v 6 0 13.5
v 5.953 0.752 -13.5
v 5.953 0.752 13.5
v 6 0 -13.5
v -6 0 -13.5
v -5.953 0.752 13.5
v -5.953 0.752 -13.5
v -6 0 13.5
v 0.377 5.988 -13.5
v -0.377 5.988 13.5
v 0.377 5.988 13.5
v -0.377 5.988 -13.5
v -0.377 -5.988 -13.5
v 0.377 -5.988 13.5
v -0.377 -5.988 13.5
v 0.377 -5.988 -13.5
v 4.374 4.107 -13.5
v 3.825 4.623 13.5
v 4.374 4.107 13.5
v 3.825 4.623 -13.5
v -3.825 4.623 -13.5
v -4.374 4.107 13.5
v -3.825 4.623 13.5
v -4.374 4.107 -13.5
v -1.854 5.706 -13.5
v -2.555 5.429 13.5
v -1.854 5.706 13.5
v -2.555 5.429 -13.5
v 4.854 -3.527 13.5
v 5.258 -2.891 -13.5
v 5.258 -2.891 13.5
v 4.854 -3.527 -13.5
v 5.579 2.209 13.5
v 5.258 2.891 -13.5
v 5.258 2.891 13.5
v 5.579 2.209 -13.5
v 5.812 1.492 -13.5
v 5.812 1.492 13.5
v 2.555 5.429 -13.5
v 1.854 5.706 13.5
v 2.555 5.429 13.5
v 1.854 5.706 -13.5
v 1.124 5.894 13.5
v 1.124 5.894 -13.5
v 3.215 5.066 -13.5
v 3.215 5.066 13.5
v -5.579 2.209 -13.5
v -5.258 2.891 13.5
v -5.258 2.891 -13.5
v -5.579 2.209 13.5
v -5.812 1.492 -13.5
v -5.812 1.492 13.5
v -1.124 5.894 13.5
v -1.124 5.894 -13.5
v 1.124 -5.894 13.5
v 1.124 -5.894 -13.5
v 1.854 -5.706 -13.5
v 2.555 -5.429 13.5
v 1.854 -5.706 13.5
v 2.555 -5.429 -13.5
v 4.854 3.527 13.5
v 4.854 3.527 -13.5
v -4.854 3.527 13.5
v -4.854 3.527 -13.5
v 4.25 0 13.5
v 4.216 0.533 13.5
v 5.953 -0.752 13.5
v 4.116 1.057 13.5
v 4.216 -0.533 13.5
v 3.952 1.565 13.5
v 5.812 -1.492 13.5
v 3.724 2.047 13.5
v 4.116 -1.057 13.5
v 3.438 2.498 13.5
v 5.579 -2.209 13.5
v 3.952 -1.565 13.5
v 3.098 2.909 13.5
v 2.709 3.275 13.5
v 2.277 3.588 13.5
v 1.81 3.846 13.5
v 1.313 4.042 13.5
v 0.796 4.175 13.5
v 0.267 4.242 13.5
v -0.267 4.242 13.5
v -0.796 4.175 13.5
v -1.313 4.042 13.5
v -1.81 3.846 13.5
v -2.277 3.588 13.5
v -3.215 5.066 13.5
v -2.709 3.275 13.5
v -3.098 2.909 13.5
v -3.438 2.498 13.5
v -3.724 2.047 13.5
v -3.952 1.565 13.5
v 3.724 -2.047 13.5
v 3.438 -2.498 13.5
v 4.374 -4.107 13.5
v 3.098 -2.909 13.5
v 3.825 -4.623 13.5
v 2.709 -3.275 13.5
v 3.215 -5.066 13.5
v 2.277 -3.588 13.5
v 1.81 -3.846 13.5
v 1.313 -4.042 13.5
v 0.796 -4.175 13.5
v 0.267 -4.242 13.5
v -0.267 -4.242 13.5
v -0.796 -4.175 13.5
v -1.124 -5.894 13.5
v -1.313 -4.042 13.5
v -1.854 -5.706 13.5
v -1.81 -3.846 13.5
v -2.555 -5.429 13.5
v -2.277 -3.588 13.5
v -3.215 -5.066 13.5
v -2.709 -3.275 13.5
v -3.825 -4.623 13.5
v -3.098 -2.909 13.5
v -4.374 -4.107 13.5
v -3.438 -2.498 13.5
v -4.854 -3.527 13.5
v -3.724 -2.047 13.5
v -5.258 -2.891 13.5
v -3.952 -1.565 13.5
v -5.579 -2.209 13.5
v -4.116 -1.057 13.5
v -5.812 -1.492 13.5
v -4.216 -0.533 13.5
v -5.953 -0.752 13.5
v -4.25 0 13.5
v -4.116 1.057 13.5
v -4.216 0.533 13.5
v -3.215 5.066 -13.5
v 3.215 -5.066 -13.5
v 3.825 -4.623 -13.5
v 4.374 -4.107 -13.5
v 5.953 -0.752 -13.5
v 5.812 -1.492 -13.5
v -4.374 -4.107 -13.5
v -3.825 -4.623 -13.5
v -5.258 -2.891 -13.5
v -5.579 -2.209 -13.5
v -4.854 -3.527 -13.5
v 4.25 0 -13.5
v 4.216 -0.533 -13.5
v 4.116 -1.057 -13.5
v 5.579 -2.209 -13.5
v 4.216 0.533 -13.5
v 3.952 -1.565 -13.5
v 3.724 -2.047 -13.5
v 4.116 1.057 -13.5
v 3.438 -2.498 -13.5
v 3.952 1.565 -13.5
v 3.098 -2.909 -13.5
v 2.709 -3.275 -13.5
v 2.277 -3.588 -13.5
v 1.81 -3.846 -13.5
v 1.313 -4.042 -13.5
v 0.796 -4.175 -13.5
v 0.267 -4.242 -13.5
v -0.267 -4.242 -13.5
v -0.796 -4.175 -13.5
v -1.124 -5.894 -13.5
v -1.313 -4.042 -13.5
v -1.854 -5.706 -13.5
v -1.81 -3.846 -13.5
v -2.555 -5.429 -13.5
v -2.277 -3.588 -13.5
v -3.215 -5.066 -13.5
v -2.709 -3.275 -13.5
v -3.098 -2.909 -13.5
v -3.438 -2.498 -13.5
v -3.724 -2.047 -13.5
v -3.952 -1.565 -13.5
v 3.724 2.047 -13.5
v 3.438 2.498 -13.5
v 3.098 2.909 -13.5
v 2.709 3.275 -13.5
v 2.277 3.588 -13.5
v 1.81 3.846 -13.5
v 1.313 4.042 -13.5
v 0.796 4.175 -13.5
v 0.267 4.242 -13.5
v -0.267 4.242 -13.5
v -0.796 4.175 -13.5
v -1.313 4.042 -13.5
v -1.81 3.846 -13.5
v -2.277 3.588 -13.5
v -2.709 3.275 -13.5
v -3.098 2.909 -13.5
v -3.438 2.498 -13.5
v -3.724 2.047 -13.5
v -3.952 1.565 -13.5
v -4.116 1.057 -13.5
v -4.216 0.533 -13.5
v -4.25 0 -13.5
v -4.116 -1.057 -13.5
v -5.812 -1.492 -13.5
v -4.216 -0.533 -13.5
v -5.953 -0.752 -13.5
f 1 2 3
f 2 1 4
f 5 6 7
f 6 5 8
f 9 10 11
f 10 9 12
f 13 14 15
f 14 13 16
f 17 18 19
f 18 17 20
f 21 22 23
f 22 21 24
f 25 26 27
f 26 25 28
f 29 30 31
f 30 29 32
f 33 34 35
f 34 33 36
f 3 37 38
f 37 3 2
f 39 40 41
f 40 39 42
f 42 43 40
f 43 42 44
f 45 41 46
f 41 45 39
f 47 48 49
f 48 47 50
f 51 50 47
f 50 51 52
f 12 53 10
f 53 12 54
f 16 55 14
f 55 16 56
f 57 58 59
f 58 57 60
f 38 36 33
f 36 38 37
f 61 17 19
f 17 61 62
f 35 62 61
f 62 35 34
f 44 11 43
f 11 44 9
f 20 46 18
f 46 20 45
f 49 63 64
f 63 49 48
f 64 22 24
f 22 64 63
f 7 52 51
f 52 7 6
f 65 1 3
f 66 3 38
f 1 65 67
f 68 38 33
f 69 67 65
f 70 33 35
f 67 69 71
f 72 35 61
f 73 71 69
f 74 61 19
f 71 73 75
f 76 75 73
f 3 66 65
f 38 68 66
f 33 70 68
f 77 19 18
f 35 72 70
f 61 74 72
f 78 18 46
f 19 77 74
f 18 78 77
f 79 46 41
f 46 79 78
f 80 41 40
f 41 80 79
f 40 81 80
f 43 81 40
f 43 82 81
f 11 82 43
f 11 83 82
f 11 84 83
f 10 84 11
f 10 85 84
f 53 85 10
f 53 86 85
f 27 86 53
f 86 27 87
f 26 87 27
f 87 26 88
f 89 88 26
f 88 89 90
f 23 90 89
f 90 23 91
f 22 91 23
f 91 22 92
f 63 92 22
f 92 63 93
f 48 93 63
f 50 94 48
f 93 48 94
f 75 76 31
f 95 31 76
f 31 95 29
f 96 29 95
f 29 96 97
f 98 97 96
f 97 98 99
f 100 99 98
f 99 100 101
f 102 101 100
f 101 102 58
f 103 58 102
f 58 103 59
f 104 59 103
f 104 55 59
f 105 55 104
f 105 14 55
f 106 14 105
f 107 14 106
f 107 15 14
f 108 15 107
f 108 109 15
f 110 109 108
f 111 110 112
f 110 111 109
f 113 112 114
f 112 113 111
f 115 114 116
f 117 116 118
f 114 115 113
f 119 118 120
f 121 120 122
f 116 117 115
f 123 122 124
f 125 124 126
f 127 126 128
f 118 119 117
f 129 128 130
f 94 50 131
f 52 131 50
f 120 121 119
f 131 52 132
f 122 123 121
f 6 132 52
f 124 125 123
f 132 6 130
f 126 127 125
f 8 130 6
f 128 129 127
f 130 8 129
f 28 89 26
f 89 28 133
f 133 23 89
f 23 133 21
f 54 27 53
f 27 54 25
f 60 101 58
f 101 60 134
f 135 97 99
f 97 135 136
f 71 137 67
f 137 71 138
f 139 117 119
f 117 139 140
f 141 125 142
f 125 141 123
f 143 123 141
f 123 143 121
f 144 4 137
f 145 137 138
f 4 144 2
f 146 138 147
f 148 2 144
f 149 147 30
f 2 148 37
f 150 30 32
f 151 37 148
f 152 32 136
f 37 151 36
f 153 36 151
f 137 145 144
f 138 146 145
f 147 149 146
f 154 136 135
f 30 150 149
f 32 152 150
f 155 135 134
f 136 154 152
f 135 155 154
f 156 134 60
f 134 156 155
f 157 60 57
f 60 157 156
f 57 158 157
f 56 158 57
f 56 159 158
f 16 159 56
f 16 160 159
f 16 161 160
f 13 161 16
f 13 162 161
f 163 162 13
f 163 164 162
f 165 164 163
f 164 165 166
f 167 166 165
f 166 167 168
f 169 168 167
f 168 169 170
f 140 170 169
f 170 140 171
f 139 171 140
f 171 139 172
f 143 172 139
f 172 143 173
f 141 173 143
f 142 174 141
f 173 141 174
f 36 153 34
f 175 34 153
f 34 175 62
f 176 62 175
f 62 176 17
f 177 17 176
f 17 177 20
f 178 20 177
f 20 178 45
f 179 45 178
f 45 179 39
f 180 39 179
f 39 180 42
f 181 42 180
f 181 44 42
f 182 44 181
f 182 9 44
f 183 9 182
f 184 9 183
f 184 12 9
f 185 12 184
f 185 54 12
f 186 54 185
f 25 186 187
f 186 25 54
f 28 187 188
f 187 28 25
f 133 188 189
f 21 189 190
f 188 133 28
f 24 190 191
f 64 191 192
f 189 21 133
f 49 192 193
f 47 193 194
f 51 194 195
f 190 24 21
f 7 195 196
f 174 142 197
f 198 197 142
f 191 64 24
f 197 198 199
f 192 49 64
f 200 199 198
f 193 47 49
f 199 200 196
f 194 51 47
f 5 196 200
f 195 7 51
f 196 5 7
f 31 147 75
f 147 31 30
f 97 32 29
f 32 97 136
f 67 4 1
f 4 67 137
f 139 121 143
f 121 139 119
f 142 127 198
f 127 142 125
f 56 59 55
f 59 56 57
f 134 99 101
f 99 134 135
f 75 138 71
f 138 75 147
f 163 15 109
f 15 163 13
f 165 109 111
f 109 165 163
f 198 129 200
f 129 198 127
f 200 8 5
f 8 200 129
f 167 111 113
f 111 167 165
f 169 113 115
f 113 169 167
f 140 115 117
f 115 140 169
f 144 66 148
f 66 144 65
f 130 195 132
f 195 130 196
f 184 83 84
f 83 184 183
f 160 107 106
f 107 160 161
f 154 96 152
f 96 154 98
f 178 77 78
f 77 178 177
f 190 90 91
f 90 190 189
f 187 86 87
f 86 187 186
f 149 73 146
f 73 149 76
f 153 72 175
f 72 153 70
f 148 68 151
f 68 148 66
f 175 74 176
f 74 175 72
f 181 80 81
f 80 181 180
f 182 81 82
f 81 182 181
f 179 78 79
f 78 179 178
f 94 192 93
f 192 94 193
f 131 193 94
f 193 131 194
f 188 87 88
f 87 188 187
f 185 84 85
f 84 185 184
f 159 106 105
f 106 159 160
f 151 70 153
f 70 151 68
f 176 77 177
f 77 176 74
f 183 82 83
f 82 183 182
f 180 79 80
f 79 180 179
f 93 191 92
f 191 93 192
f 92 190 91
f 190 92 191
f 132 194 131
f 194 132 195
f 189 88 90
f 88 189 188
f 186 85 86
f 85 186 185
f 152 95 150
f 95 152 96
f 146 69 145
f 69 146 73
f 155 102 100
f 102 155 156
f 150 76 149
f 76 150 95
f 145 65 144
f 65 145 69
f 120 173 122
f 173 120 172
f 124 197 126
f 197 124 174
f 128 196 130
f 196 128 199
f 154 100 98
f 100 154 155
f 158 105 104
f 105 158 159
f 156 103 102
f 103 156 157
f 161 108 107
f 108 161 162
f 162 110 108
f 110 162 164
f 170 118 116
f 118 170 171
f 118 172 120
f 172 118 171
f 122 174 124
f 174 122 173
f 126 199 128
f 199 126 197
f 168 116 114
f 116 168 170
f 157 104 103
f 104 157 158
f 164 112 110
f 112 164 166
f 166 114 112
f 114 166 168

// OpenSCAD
$fn = 50;


difference() {
	union() {
		translate(v = [0, 0, -13.5000000000]) {
			cylinder(h = 27, r = 6.0000000000);
		}
	}
	union() {
		translate(v = [0, 0, -100.0000000000]) {
			cylinder(h = 200, r = 4.2500000000);
		}
	}
}
